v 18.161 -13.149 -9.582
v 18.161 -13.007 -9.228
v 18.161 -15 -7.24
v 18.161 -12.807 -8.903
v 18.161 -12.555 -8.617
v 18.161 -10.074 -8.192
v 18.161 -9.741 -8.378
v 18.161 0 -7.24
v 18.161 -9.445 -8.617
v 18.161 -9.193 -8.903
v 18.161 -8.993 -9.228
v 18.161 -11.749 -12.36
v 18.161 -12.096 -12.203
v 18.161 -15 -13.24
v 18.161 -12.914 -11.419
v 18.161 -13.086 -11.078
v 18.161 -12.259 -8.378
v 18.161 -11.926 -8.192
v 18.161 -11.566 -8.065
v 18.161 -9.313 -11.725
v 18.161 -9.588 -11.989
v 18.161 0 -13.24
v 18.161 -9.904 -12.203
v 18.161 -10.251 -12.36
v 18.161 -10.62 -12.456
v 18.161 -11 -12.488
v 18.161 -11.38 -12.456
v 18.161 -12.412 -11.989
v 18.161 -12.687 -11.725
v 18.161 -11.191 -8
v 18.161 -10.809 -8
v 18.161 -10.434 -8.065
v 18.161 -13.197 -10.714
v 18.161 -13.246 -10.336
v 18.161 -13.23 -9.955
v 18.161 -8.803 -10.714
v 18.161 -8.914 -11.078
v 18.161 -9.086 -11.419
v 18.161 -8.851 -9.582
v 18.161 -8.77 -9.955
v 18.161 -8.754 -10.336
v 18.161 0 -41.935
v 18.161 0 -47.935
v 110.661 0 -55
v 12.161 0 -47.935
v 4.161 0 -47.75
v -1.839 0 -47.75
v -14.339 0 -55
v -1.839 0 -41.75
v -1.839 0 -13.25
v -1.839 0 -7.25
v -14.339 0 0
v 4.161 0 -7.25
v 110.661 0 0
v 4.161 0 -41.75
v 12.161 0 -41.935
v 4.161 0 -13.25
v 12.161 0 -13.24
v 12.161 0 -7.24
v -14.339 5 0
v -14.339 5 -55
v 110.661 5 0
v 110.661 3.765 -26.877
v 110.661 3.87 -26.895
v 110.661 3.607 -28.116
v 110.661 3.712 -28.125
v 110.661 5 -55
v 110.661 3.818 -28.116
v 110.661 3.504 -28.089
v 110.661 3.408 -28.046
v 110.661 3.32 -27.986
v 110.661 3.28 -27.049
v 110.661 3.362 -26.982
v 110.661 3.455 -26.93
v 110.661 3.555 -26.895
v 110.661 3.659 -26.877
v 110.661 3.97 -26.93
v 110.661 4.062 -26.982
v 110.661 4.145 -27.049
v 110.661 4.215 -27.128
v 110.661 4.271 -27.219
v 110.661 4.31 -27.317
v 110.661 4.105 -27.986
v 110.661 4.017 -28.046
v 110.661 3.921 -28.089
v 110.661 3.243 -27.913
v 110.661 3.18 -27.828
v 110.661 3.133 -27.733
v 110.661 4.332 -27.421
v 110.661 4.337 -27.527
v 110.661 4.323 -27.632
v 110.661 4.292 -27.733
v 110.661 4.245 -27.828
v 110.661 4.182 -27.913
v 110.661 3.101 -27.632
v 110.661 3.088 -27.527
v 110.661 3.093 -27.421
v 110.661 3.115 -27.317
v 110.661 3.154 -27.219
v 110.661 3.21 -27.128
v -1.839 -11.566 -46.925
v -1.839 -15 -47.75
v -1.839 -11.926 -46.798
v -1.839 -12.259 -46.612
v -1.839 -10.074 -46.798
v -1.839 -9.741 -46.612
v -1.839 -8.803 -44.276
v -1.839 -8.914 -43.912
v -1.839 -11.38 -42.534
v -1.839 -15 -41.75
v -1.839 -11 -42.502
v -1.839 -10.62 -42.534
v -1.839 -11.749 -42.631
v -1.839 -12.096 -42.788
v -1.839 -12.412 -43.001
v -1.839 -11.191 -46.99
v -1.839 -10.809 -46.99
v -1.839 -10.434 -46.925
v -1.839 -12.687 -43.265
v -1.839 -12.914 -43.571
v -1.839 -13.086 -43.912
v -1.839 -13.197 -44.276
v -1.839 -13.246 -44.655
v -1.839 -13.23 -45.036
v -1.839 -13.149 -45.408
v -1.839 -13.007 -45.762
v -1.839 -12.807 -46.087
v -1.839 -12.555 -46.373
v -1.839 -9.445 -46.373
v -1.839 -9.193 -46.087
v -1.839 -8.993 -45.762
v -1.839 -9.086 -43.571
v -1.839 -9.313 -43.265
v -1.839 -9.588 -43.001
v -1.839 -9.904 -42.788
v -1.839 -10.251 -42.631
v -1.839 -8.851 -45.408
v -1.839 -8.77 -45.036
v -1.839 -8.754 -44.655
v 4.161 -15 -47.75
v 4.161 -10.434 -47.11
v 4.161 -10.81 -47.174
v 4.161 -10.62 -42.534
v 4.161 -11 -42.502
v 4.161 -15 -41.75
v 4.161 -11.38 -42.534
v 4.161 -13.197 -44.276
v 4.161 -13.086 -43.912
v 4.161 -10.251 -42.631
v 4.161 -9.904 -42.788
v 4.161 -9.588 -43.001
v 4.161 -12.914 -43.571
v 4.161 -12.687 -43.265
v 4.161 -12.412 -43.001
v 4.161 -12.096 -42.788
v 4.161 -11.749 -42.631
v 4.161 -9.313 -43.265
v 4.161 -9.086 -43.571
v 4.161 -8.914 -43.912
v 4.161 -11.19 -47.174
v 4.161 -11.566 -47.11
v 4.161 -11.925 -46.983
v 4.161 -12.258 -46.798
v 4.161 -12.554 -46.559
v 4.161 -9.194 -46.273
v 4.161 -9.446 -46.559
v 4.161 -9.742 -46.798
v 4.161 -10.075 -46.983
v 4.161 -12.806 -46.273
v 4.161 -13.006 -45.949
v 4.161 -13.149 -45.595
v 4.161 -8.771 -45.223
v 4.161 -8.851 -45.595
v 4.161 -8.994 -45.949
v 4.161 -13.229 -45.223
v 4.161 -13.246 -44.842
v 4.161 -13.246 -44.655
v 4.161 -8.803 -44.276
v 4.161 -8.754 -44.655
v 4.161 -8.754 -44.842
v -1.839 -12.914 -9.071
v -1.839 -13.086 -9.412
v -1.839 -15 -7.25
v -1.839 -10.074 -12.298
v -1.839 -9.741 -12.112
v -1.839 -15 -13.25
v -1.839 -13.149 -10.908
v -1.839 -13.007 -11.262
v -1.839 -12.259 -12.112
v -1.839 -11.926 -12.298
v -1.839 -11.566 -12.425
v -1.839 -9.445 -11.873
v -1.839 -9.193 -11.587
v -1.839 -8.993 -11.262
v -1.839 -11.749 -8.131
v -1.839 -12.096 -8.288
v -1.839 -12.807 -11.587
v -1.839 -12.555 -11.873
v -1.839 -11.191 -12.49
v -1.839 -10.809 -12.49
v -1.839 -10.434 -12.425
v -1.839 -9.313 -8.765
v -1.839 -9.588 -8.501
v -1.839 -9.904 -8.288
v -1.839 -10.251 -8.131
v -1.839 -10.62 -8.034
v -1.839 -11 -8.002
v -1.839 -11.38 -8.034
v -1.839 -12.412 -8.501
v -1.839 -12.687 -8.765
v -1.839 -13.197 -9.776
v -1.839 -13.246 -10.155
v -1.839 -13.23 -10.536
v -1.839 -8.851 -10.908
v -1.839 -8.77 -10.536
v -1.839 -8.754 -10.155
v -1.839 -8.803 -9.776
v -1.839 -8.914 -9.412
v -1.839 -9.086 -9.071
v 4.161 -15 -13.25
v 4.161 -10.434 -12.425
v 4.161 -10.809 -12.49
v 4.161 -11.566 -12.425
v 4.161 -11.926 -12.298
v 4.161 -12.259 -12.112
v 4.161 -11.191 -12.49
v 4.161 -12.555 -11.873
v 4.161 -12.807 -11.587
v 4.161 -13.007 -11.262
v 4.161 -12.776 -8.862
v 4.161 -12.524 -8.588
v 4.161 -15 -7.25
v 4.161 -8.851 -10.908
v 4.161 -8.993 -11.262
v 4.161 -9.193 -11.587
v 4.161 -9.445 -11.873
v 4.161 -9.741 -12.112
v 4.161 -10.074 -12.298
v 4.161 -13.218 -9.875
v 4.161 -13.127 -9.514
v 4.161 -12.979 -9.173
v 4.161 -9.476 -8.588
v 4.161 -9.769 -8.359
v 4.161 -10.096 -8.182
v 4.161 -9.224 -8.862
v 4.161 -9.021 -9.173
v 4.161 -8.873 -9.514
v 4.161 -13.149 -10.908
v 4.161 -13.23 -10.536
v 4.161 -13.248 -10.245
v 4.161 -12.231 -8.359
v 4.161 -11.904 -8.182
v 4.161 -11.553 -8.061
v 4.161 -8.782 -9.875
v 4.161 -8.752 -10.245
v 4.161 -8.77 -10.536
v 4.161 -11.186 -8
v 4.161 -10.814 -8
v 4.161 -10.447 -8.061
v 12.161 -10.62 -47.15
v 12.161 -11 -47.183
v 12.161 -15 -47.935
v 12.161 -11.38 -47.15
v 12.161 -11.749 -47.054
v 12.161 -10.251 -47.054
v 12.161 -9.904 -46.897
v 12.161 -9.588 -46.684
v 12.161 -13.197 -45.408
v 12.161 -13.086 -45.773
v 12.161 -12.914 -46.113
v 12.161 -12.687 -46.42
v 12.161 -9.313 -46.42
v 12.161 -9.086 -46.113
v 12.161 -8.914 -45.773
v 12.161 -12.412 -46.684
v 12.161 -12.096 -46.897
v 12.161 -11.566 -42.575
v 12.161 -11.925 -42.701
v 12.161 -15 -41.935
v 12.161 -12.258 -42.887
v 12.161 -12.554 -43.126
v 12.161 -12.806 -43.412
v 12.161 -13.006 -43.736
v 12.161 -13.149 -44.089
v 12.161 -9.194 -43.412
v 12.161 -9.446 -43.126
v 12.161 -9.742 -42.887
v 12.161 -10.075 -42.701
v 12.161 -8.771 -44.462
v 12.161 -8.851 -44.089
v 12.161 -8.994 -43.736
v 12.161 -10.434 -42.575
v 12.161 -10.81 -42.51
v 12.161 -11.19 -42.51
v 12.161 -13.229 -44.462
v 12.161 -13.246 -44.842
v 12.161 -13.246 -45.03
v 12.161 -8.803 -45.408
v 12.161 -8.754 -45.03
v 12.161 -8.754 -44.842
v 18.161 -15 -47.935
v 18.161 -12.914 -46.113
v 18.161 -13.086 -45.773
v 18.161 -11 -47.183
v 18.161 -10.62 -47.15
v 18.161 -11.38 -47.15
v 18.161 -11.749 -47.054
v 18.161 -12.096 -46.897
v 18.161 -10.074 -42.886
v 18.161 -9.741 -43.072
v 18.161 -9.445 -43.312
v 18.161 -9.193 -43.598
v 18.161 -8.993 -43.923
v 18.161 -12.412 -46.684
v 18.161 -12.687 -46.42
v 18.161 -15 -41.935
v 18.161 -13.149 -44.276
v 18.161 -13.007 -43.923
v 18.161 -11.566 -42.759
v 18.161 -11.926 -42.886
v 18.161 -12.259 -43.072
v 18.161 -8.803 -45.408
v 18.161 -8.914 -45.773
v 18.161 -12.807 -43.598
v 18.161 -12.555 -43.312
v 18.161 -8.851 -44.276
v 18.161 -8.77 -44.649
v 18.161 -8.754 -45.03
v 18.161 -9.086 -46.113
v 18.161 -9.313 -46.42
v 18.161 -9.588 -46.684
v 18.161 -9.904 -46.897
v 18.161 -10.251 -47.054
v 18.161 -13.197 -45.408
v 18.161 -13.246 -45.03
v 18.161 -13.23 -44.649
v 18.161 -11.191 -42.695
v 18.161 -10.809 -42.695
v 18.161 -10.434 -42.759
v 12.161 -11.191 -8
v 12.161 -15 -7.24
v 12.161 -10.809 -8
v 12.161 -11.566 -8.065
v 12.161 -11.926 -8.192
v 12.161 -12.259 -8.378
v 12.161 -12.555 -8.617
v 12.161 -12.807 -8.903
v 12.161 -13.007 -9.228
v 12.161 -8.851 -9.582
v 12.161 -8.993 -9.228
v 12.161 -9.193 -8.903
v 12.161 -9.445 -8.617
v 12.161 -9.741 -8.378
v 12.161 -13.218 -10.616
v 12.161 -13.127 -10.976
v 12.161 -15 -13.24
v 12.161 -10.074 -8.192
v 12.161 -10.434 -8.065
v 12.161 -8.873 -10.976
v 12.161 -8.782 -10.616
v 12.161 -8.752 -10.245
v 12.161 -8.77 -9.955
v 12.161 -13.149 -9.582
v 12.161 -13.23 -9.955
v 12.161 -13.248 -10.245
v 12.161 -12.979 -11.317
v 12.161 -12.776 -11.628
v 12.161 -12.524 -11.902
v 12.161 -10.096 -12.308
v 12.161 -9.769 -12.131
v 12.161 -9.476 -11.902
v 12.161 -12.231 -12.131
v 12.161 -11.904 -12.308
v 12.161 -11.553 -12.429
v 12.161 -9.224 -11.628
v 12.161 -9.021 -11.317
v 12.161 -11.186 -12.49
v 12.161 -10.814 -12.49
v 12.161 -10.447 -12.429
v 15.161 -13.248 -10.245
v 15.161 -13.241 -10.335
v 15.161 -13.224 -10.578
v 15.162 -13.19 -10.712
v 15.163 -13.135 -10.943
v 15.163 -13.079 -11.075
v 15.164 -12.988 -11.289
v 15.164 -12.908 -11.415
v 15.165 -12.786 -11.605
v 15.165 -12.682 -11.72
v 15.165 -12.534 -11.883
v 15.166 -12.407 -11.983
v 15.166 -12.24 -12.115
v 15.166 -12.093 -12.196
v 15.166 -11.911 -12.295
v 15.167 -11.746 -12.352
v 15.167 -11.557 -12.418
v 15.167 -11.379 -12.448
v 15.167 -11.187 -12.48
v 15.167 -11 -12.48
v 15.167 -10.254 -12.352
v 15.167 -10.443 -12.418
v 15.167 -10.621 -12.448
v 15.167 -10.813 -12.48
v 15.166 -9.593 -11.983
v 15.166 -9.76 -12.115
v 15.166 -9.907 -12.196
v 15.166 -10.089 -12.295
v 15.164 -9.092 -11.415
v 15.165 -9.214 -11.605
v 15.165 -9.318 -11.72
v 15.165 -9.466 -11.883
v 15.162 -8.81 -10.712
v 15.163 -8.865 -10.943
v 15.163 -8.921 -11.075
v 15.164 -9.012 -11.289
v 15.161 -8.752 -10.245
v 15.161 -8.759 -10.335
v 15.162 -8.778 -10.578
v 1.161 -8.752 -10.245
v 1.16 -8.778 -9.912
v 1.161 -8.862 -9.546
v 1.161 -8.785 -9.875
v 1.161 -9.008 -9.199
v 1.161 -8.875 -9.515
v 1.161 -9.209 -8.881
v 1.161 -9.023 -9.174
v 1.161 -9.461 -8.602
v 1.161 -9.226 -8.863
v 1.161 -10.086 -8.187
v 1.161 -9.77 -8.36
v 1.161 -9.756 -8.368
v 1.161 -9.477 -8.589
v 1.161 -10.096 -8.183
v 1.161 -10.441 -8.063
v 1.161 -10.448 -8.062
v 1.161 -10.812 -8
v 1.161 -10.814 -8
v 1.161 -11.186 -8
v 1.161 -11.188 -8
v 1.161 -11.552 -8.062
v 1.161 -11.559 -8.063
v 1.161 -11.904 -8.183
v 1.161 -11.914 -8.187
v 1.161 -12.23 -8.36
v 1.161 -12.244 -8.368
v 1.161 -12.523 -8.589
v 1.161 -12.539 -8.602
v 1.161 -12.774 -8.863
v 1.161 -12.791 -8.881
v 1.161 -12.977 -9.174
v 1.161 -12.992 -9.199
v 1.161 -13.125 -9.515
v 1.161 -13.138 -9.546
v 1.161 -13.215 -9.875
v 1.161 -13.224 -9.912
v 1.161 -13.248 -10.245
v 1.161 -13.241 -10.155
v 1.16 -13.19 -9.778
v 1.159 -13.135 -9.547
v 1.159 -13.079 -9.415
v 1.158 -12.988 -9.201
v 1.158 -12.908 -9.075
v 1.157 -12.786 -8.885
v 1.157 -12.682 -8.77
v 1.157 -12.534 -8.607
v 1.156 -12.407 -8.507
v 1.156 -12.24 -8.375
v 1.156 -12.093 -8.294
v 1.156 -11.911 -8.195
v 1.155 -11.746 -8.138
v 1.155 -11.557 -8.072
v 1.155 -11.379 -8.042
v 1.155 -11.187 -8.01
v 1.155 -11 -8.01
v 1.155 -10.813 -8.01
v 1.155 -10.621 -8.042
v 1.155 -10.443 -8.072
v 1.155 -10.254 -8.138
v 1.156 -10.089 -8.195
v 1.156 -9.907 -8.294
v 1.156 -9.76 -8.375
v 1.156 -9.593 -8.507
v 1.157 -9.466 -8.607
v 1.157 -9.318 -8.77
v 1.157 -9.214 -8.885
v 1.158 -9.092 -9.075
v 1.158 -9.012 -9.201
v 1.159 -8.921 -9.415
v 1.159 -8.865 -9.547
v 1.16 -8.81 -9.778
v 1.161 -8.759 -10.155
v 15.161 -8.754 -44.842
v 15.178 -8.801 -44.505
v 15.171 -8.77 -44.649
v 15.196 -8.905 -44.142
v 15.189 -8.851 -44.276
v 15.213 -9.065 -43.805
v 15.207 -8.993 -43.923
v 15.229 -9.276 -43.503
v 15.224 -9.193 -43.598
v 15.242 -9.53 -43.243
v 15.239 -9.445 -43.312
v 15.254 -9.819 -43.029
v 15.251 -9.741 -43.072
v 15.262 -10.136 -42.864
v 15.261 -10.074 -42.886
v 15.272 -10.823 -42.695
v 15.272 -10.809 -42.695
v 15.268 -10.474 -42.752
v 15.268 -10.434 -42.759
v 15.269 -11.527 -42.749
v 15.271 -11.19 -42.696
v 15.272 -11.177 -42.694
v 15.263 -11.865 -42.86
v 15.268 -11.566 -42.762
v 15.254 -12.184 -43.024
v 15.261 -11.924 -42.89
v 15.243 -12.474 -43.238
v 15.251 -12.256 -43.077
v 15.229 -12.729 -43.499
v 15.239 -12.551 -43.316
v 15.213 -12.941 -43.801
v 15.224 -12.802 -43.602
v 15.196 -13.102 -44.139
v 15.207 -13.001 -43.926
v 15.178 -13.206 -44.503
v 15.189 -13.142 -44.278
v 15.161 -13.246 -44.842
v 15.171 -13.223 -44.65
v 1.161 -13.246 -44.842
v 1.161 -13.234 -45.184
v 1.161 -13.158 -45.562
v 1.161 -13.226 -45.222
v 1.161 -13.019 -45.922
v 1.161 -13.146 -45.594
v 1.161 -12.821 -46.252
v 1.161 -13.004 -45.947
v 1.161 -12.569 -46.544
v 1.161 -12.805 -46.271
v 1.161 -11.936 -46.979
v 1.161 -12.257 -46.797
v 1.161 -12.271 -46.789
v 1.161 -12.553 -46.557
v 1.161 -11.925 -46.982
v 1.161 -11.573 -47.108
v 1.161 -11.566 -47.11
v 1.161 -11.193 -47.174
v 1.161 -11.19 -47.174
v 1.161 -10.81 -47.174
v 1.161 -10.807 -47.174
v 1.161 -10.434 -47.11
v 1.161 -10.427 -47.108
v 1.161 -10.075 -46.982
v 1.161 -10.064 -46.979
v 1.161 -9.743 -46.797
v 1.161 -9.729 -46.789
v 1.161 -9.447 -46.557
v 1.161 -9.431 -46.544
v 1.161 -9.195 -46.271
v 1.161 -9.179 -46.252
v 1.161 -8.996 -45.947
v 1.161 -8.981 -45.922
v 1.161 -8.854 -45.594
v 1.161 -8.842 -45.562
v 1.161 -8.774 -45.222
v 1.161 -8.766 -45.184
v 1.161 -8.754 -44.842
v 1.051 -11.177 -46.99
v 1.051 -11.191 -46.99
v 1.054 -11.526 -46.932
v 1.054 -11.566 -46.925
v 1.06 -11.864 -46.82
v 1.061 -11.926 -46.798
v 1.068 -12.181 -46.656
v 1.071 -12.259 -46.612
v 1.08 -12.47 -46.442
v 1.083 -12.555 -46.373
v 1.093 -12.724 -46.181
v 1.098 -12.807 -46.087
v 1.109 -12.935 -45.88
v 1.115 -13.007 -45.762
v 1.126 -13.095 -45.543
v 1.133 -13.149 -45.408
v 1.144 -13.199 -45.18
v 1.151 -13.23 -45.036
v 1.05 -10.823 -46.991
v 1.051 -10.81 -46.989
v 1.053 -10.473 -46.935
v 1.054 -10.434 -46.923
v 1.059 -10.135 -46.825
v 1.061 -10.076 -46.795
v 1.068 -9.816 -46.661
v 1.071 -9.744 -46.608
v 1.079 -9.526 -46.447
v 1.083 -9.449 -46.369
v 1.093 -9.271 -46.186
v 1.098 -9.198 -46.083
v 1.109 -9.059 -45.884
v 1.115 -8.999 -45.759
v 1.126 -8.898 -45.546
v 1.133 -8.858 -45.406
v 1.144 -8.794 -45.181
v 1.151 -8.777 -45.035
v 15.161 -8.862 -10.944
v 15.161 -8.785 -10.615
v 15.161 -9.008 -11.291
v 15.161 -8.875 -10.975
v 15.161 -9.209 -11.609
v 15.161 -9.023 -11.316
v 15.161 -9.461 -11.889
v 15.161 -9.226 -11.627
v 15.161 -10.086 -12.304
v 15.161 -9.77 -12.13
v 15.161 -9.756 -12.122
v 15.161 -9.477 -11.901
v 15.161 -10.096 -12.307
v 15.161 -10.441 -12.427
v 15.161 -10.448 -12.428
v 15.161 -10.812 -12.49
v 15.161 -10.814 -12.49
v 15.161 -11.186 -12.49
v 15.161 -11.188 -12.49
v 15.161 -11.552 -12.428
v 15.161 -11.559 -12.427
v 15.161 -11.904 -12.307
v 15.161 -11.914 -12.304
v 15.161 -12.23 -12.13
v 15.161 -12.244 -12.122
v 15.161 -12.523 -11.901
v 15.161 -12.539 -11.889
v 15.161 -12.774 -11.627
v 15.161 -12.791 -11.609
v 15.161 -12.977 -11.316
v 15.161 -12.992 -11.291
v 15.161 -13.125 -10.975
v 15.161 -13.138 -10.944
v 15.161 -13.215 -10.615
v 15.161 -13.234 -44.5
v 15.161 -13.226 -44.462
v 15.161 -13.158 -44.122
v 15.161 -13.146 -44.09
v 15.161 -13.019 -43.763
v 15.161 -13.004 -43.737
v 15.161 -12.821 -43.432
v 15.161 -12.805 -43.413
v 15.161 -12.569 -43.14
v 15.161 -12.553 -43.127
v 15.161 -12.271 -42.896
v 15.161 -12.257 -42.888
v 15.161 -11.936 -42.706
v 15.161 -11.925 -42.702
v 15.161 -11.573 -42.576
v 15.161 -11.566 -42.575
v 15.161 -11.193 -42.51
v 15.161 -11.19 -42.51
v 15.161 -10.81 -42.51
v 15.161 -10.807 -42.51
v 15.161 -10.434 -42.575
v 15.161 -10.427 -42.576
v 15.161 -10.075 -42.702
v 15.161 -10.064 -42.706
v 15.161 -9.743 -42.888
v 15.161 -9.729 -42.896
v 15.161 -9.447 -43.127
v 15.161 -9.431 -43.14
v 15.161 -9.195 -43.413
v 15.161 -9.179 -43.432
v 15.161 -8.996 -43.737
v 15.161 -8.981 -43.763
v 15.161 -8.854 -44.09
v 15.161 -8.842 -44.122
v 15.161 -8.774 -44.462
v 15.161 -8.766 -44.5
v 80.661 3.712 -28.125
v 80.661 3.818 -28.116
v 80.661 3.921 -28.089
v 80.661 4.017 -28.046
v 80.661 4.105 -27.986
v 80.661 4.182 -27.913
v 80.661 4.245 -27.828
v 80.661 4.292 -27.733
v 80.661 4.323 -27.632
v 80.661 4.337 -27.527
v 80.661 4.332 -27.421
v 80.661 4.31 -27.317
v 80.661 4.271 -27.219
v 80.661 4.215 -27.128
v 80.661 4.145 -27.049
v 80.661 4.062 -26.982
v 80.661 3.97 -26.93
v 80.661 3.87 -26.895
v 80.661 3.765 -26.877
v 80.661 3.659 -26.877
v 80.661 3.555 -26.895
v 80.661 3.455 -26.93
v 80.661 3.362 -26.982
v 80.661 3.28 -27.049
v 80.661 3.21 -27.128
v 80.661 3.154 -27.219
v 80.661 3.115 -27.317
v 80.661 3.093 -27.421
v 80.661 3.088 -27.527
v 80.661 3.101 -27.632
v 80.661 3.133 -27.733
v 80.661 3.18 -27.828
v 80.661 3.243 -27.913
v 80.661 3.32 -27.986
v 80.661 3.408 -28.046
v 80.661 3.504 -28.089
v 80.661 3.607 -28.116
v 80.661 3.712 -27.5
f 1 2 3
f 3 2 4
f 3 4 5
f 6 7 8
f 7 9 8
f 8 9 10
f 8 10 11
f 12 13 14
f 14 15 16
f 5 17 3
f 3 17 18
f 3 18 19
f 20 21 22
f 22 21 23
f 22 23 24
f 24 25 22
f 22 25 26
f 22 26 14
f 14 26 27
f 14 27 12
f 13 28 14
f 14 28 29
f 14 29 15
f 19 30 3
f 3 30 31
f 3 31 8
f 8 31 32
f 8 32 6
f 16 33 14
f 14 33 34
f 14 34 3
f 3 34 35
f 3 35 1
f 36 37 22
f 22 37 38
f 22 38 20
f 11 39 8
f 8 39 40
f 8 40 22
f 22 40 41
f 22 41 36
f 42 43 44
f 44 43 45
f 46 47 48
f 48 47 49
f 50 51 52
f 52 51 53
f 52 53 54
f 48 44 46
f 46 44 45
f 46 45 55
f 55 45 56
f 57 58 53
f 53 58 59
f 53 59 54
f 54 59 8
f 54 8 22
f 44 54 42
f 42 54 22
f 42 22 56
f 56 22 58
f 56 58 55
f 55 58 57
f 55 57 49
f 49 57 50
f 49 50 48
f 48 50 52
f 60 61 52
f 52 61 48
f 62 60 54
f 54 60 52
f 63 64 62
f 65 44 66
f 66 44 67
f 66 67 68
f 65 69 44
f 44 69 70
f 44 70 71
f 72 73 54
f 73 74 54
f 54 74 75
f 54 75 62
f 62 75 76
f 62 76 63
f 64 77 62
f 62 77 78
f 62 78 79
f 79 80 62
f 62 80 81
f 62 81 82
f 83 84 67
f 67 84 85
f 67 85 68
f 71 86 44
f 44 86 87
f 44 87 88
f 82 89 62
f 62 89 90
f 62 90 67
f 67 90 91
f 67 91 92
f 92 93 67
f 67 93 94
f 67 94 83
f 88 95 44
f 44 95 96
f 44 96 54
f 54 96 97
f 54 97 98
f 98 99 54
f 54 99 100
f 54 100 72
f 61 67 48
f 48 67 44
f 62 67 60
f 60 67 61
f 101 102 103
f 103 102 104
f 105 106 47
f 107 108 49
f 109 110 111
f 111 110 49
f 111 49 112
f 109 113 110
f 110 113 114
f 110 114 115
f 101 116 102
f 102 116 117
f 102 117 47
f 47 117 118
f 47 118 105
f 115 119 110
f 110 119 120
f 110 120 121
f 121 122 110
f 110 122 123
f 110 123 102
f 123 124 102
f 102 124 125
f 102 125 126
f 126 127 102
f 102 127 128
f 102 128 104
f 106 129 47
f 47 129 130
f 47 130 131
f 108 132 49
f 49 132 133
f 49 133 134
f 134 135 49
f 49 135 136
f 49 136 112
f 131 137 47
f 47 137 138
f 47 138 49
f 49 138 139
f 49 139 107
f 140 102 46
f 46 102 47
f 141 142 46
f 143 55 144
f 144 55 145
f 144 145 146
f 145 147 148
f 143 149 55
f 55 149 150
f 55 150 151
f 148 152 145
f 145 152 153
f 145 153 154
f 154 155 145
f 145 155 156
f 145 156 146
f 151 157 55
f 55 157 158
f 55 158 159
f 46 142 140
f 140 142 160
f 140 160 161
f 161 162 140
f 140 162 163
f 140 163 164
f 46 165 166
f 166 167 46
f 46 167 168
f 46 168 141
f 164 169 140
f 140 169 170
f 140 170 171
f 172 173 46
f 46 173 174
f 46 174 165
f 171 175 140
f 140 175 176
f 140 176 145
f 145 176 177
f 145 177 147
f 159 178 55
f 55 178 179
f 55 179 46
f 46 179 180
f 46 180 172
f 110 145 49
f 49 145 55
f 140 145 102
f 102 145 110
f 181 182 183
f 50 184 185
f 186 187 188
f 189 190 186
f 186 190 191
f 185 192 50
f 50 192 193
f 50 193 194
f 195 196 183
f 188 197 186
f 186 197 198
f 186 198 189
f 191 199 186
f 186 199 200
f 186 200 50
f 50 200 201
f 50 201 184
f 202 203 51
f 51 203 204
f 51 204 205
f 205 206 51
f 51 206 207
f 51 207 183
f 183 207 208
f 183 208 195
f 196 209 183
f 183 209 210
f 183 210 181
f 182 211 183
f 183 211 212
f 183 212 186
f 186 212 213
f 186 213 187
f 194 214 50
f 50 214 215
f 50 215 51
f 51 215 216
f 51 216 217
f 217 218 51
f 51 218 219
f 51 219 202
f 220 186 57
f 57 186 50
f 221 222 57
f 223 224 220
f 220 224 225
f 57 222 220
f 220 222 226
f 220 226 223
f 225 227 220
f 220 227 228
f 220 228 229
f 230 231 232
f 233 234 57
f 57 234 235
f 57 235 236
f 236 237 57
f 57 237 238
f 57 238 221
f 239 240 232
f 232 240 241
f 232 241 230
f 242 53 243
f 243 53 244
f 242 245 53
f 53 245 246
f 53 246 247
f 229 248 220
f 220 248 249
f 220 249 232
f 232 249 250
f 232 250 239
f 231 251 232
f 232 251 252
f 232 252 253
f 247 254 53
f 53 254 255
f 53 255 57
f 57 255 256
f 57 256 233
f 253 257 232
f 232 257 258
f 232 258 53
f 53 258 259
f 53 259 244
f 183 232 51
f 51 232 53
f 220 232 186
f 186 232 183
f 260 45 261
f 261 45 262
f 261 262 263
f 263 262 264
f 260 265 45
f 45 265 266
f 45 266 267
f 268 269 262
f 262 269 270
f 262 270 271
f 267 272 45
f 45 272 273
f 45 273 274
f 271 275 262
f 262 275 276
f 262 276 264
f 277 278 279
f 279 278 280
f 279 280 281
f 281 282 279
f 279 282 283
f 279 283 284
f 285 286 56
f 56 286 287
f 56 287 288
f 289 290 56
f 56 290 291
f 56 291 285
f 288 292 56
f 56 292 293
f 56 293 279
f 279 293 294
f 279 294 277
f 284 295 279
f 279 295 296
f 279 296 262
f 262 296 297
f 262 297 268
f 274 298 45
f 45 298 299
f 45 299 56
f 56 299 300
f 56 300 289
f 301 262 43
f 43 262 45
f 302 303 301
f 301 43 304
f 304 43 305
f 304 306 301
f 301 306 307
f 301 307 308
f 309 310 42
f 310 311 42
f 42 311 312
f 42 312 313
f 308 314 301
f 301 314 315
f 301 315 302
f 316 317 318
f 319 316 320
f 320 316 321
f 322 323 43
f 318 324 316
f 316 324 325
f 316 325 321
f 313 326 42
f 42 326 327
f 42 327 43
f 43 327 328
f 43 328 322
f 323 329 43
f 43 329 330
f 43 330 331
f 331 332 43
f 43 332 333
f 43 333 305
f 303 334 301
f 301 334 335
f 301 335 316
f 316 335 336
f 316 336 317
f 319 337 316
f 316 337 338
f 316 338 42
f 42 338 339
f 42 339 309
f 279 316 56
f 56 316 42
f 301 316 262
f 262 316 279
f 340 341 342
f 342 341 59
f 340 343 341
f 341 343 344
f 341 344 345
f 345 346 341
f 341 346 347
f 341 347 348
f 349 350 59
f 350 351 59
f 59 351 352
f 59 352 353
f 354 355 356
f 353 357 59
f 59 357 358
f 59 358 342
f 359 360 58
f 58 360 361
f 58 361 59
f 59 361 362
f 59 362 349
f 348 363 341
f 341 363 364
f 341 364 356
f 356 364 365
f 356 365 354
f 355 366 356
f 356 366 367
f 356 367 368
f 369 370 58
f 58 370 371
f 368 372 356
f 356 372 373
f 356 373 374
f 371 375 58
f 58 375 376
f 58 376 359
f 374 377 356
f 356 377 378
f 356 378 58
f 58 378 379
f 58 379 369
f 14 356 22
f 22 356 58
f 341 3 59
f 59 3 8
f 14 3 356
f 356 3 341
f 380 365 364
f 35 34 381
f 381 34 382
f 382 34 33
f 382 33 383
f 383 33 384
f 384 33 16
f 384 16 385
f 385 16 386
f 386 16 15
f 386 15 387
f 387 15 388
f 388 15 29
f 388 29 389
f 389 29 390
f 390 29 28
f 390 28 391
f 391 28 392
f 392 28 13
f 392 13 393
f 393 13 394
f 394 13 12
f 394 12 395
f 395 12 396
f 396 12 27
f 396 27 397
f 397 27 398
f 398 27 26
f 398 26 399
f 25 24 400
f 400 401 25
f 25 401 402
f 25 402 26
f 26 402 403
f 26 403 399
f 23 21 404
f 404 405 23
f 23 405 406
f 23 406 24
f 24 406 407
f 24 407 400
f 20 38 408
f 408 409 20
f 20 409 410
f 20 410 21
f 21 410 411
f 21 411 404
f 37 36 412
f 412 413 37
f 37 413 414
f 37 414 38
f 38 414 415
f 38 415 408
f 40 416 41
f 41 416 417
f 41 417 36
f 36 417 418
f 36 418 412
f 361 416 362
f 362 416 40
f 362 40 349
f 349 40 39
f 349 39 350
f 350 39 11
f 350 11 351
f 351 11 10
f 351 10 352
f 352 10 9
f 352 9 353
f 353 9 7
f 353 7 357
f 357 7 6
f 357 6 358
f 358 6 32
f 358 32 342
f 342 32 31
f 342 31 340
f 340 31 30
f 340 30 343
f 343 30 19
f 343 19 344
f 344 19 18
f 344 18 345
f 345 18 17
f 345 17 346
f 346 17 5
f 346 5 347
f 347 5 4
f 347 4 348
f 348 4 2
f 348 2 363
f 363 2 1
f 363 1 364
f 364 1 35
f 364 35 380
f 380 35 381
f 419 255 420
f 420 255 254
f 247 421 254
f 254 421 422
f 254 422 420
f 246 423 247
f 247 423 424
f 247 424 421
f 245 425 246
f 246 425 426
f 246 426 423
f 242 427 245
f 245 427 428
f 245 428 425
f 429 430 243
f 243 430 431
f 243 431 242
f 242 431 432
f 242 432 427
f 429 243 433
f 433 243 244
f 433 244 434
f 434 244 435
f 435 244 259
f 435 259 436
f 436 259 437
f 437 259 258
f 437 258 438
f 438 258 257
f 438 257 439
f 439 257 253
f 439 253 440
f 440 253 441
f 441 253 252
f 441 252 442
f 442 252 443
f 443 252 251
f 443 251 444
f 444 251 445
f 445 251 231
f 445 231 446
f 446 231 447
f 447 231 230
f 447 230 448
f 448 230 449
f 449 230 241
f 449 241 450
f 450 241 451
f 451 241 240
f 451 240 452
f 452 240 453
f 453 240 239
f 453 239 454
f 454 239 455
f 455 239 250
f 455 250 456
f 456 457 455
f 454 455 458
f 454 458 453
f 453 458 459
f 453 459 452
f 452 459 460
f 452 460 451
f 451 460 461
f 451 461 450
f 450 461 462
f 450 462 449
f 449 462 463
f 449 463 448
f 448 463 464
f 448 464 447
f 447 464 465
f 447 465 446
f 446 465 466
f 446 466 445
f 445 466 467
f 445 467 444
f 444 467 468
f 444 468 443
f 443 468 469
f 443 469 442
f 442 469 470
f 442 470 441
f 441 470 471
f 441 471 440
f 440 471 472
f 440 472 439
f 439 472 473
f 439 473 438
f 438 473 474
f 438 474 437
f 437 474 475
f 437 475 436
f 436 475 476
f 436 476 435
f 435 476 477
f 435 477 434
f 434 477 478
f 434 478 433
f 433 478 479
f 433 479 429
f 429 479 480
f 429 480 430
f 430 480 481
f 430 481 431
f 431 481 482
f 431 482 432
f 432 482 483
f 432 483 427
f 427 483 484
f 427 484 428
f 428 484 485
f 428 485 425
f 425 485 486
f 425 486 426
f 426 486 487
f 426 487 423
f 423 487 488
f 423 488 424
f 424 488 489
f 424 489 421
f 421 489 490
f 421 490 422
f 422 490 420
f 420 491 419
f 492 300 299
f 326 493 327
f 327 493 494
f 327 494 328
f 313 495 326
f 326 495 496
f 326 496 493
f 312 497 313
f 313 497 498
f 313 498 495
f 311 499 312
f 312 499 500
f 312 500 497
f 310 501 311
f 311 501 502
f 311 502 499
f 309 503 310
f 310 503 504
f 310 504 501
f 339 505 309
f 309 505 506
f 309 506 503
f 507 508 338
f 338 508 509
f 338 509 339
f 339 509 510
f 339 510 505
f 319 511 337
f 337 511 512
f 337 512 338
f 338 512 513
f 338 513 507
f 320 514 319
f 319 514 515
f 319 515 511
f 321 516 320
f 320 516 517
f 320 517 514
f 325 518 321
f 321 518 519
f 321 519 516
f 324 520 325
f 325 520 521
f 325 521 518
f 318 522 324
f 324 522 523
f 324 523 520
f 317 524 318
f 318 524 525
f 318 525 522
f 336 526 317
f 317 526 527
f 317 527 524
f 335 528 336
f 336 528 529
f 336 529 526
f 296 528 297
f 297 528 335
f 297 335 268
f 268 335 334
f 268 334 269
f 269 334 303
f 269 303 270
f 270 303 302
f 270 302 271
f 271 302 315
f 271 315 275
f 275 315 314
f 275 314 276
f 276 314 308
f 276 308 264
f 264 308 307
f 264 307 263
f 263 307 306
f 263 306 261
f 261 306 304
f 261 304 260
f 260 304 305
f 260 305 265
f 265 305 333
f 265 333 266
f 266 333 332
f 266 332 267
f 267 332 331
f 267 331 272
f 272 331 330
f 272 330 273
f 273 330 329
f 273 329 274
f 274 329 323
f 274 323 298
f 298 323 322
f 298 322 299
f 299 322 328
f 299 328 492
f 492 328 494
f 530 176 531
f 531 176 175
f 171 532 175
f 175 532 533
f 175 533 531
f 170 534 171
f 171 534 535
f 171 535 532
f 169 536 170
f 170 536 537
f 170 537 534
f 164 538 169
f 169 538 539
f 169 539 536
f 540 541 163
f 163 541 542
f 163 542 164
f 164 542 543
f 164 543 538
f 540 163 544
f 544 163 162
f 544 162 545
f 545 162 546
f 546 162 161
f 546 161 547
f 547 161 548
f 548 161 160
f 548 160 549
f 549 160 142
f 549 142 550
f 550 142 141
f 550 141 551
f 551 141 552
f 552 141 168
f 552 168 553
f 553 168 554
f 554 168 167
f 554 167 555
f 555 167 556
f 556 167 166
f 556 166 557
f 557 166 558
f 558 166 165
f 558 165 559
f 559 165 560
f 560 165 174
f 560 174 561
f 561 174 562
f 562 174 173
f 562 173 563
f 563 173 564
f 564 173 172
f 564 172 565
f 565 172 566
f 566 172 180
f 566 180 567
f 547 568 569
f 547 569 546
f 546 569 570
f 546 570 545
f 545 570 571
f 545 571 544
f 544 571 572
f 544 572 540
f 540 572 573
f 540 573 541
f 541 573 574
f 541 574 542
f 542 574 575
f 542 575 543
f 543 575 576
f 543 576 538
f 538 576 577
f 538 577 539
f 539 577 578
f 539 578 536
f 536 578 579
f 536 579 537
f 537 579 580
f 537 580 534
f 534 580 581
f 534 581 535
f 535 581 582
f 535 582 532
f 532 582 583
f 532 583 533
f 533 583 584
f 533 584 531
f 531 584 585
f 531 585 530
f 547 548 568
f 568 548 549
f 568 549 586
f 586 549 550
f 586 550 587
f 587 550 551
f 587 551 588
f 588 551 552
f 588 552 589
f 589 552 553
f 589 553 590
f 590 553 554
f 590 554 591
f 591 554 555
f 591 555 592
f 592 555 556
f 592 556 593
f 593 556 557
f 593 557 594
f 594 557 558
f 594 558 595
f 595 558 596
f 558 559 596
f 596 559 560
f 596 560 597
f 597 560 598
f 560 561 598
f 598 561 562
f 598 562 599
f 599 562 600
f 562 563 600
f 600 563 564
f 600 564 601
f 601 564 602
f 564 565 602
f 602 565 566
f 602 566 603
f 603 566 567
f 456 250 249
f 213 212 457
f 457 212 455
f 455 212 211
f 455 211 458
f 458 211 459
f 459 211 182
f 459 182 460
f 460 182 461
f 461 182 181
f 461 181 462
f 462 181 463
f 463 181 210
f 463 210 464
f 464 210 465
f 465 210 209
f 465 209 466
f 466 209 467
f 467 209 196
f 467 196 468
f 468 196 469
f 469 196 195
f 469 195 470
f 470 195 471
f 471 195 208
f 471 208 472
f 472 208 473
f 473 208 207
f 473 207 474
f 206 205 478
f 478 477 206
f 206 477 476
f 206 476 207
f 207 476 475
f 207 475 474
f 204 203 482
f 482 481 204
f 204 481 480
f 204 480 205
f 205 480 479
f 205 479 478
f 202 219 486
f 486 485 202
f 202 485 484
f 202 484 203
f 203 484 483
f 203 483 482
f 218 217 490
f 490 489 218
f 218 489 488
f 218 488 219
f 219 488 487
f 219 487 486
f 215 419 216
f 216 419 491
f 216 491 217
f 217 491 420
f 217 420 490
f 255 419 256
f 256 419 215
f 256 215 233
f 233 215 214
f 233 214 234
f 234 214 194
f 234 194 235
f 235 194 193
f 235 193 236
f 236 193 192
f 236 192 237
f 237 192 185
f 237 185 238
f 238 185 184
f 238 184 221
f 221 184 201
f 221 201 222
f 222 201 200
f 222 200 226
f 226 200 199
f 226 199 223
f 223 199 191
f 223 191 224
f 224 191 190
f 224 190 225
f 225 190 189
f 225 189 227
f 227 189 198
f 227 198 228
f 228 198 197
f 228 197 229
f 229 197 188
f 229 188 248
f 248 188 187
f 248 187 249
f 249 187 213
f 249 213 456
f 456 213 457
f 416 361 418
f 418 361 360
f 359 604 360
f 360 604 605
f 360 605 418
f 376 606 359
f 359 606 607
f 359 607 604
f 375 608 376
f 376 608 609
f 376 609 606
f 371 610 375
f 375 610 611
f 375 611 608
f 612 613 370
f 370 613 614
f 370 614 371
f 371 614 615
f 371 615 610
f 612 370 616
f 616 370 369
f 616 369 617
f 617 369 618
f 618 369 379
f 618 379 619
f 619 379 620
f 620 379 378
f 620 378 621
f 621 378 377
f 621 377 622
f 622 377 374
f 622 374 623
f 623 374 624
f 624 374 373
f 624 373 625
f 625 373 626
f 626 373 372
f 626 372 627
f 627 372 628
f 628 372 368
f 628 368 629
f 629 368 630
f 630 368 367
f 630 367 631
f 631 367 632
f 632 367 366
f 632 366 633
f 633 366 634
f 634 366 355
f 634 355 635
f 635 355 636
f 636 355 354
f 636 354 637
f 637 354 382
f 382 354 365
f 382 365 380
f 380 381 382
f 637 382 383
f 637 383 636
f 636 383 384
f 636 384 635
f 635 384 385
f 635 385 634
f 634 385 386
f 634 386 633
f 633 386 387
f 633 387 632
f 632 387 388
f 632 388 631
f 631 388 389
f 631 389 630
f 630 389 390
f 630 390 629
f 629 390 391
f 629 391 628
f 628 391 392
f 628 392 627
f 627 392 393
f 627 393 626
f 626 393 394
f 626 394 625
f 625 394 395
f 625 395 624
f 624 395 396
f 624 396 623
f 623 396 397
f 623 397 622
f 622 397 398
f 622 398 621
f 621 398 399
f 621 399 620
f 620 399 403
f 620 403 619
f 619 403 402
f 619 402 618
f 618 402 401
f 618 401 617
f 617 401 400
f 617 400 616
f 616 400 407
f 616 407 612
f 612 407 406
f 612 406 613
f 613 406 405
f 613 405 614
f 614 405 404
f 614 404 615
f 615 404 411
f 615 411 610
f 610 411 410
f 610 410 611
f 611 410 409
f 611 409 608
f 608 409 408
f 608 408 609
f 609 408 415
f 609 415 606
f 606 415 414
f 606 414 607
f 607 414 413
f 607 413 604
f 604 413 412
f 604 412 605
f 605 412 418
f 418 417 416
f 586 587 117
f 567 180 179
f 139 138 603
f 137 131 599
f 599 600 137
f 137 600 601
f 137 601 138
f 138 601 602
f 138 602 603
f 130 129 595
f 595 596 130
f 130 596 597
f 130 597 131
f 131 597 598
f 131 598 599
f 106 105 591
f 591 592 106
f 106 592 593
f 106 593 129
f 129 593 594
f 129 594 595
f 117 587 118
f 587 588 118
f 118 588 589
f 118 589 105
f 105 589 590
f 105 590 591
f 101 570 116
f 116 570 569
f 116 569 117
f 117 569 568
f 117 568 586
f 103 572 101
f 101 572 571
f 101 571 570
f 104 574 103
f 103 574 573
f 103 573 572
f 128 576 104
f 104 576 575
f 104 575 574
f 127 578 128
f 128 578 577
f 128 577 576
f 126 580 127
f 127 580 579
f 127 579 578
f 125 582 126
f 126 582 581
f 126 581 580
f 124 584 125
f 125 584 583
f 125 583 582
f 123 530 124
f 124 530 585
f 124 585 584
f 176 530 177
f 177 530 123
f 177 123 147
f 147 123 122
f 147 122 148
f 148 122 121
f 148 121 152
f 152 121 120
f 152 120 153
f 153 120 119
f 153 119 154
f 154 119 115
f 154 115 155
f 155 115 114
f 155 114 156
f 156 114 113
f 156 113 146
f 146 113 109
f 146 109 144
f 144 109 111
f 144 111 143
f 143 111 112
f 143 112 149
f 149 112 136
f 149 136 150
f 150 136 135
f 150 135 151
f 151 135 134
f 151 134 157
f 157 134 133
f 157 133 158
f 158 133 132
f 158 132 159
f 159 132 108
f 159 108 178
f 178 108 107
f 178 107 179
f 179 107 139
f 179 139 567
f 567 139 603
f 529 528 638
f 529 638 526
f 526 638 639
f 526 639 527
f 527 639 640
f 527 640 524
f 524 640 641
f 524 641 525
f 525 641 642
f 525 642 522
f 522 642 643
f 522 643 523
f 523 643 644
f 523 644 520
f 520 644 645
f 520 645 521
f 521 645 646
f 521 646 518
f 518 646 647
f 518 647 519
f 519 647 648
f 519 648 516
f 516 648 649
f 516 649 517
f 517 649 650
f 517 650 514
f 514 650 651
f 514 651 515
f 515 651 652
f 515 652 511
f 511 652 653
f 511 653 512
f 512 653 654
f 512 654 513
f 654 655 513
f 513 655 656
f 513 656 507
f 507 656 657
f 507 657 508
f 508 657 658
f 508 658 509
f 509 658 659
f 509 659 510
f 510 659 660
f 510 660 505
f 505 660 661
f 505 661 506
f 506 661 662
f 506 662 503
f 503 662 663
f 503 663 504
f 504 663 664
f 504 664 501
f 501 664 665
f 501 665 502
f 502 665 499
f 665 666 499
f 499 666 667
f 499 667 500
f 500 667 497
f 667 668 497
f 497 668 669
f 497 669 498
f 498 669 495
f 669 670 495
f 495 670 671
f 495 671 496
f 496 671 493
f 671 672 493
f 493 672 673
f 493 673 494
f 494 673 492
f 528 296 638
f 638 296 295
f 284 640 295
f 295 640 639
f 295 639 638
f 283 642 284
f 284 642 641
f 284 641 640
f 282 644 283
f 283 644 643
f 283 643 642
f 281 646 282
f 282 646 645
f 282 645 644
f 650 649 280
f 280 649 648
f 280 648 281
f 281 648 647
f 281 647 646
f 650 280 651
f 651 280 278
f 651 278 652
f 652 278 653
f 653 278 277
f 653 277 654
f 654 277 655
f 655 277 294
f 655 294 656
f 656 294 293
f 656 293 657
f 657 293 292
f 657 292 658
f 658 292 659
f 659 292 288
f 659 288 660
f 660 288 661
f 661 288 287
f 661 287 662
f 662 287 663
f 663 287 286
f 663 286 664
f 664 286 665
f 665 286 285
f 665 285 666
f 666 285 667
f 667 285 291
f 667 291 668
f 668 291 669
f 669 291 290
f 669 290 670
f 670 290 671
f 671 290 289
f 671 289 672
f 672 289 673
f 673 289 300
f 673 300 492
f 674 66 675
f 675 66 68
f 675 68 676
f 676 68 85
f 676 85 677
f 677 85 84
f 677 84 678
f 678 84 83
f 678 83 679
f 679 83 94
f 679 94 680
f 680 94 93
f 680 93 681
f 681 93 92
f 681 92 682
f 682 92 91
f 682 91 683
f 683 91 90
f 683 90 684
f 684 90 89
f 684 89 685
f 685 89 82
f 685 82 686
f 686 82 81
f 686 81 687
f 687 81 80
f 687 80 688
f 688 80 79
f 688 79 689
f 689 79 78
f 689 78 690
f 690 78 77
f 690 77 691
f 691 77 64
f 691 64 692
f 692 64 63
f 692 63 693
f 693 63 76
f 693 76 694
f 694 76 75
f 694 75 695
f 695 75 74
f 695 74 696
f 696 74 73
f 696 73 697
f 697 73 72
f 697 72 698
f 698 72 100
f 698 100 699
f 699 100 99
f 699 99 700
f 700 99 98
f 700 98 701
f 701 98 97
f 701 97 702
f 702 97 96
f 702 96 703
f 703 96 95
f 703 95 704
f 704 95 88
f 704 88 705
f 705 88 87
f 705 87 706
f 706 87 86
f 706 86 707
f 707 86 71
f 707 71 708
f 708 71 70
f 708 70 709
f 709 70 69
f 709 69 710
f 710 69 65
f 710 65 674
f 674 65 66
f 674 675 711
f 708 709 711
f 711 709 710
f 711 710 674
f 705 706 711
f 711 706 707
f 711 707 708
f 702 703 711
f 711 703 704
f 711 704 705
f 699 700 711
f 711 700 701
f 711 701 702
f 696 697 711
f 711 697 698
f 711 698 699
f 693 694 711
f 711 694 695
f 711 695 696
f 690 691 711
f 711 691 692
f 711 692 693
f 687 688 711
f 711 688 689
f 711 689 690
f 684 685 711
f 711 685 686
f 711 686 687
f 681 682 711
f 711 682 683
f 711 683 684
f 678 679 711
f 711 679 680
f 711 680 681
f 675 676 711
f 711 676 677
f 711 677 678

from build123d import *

# Parameters (mm, degrees)
BOSS_EXTRUDE1_DEPTH                 = 5
SKETCH3_W                           = 6
SKETCH3_H                           = 6
BOSS_EXTRUDE2_DEPTH                 = 15
F_8_CLEARANCE_HOLE2_D               = 4.4958
F_8_CLEARANCE_HOLE2_DEPTH           = 17
F_8_CLEARANCE_HOLE2_TIP             = 1.350674586
F_8_CLEARANCE_HOLE2_ON_FACE_2_D     = 4.4958
F_8_CLEARANCE_HOLE2_ON_FACE_2_DEPTH = 17
F_8_CLEARANCE_HOLE2_ON_FACE_2_TIP   = 1.350674586
SKETCH17_R                          = 0.625
CUT_EXTRUDE1_DEPTH                  = 30


with BuildPart() as part:
    # Sketch1 → Boss-Extrude1 (new body)
    with BuildSketch(Plane(origin=(0, 0, 0), x_dir=(1, 0, 0), z_dir=(0, 1, 0))):
        Polygon((-14.338976611, 0), (110.661023389, 0), (110.661023389, 55), (8.161023389, 55), (-14.338976611, 55), align=None)
    extrude(amount=BOSS_EXTRUDE1_DEPTH)

    # Sketch3 → Boss-Extrude2 (add)
    with BuildSketch(Plane(origin=(0, 0, 0), x_dir=(-1, 0, 0), z_dir=(0, -1, 0))):
        with Locations((-1.161023389, 44.75)):
            Rectangle(SKETCH3_W, SKETCH3_H)
        with Locations((-1.161023389, 10.25)):
            Rectangle(SKETCH3_W, SKETCH3_H)
        with Locations((-15.161023389, 44.934631069)):
            Rectangle(SKETCH3_W, SKETCH3_H)
        with Locations((-15.161023389, 10.240172473)):
            Rectangle(SKETCH3_W, SKETCH3_H)
    extrude(amount=BOSS_EXTRUDE2_DEPTH)

    # #8 Clearance Hole2
    with Locations(Plane(origin=(-1.838976611, -11, -44.75), x_dir=(0, 0, -1), z_dir=(-1, 0, 0))):
        with Locations((0, 0), (-34.5, 0)):
            Hole(F_8_CLEARANCE_HOLE2_D / 2, depth=F_8_CLEARANCE_HOLE2_DEPTH)
            with Locations((0, 0, -(F_8_CLEARANCE_HOLE2_DEPTH + F_8_CLEARANCE_HOLE2_TIP / 2))):  # 118° drill point
                Cone(0, F_8_CLEARANCE_HOLE2_D / 2, F_8_CLEARANCE_HOLE2_TIP, mode=Mode.SUBTRACT)

    # #8 Clearance Hole2 on face 2
    with Locations(Plane(origin=(18.161023389, -11, -44.934631069), x_dir=(0, 0, 1), z_dir=(1, 0, 0))):
        with Locations((0, 0), (34.694458596, 0)):
            Hole(F_8_CLEARANCE_HOLE2_ON_FACE_2_D / 2, depth=F_8_CLEARANCE_HOLE2_ON_FACE_2_DEPTH)
            with Locations((0, 0, -(F_8_CLEARANCE_HOLE2_ON_FACE_2_DEPTH + F_8_CLEARANCE_HOLE2_ON_FACE_2_TIP / 2))):  # 118° drill point
                Cone(0, F_8_CLEARANCE_HOLE2_ON_FACE_2_D / 2, F_8_CLEARANCE_HOLE2_ON_FACE_2_TIP, mode=Mode.SUBTRACT)

    # Sketch17 → Cut-Extrude1 (cut)
    with BuildSketch(Plane(origin=(110.661023389, 0, 0), x_dir=(0, 0, -1), z_dir=(1, 0, 0))):
        with Locations((27.5, 3.712457307)):
            Circle(SKETCH17_R)
    extrude(amount=-CUT_EXTRUDE1_DEPTH, mode=Mode.SUBTRACT)


solid = part.part
